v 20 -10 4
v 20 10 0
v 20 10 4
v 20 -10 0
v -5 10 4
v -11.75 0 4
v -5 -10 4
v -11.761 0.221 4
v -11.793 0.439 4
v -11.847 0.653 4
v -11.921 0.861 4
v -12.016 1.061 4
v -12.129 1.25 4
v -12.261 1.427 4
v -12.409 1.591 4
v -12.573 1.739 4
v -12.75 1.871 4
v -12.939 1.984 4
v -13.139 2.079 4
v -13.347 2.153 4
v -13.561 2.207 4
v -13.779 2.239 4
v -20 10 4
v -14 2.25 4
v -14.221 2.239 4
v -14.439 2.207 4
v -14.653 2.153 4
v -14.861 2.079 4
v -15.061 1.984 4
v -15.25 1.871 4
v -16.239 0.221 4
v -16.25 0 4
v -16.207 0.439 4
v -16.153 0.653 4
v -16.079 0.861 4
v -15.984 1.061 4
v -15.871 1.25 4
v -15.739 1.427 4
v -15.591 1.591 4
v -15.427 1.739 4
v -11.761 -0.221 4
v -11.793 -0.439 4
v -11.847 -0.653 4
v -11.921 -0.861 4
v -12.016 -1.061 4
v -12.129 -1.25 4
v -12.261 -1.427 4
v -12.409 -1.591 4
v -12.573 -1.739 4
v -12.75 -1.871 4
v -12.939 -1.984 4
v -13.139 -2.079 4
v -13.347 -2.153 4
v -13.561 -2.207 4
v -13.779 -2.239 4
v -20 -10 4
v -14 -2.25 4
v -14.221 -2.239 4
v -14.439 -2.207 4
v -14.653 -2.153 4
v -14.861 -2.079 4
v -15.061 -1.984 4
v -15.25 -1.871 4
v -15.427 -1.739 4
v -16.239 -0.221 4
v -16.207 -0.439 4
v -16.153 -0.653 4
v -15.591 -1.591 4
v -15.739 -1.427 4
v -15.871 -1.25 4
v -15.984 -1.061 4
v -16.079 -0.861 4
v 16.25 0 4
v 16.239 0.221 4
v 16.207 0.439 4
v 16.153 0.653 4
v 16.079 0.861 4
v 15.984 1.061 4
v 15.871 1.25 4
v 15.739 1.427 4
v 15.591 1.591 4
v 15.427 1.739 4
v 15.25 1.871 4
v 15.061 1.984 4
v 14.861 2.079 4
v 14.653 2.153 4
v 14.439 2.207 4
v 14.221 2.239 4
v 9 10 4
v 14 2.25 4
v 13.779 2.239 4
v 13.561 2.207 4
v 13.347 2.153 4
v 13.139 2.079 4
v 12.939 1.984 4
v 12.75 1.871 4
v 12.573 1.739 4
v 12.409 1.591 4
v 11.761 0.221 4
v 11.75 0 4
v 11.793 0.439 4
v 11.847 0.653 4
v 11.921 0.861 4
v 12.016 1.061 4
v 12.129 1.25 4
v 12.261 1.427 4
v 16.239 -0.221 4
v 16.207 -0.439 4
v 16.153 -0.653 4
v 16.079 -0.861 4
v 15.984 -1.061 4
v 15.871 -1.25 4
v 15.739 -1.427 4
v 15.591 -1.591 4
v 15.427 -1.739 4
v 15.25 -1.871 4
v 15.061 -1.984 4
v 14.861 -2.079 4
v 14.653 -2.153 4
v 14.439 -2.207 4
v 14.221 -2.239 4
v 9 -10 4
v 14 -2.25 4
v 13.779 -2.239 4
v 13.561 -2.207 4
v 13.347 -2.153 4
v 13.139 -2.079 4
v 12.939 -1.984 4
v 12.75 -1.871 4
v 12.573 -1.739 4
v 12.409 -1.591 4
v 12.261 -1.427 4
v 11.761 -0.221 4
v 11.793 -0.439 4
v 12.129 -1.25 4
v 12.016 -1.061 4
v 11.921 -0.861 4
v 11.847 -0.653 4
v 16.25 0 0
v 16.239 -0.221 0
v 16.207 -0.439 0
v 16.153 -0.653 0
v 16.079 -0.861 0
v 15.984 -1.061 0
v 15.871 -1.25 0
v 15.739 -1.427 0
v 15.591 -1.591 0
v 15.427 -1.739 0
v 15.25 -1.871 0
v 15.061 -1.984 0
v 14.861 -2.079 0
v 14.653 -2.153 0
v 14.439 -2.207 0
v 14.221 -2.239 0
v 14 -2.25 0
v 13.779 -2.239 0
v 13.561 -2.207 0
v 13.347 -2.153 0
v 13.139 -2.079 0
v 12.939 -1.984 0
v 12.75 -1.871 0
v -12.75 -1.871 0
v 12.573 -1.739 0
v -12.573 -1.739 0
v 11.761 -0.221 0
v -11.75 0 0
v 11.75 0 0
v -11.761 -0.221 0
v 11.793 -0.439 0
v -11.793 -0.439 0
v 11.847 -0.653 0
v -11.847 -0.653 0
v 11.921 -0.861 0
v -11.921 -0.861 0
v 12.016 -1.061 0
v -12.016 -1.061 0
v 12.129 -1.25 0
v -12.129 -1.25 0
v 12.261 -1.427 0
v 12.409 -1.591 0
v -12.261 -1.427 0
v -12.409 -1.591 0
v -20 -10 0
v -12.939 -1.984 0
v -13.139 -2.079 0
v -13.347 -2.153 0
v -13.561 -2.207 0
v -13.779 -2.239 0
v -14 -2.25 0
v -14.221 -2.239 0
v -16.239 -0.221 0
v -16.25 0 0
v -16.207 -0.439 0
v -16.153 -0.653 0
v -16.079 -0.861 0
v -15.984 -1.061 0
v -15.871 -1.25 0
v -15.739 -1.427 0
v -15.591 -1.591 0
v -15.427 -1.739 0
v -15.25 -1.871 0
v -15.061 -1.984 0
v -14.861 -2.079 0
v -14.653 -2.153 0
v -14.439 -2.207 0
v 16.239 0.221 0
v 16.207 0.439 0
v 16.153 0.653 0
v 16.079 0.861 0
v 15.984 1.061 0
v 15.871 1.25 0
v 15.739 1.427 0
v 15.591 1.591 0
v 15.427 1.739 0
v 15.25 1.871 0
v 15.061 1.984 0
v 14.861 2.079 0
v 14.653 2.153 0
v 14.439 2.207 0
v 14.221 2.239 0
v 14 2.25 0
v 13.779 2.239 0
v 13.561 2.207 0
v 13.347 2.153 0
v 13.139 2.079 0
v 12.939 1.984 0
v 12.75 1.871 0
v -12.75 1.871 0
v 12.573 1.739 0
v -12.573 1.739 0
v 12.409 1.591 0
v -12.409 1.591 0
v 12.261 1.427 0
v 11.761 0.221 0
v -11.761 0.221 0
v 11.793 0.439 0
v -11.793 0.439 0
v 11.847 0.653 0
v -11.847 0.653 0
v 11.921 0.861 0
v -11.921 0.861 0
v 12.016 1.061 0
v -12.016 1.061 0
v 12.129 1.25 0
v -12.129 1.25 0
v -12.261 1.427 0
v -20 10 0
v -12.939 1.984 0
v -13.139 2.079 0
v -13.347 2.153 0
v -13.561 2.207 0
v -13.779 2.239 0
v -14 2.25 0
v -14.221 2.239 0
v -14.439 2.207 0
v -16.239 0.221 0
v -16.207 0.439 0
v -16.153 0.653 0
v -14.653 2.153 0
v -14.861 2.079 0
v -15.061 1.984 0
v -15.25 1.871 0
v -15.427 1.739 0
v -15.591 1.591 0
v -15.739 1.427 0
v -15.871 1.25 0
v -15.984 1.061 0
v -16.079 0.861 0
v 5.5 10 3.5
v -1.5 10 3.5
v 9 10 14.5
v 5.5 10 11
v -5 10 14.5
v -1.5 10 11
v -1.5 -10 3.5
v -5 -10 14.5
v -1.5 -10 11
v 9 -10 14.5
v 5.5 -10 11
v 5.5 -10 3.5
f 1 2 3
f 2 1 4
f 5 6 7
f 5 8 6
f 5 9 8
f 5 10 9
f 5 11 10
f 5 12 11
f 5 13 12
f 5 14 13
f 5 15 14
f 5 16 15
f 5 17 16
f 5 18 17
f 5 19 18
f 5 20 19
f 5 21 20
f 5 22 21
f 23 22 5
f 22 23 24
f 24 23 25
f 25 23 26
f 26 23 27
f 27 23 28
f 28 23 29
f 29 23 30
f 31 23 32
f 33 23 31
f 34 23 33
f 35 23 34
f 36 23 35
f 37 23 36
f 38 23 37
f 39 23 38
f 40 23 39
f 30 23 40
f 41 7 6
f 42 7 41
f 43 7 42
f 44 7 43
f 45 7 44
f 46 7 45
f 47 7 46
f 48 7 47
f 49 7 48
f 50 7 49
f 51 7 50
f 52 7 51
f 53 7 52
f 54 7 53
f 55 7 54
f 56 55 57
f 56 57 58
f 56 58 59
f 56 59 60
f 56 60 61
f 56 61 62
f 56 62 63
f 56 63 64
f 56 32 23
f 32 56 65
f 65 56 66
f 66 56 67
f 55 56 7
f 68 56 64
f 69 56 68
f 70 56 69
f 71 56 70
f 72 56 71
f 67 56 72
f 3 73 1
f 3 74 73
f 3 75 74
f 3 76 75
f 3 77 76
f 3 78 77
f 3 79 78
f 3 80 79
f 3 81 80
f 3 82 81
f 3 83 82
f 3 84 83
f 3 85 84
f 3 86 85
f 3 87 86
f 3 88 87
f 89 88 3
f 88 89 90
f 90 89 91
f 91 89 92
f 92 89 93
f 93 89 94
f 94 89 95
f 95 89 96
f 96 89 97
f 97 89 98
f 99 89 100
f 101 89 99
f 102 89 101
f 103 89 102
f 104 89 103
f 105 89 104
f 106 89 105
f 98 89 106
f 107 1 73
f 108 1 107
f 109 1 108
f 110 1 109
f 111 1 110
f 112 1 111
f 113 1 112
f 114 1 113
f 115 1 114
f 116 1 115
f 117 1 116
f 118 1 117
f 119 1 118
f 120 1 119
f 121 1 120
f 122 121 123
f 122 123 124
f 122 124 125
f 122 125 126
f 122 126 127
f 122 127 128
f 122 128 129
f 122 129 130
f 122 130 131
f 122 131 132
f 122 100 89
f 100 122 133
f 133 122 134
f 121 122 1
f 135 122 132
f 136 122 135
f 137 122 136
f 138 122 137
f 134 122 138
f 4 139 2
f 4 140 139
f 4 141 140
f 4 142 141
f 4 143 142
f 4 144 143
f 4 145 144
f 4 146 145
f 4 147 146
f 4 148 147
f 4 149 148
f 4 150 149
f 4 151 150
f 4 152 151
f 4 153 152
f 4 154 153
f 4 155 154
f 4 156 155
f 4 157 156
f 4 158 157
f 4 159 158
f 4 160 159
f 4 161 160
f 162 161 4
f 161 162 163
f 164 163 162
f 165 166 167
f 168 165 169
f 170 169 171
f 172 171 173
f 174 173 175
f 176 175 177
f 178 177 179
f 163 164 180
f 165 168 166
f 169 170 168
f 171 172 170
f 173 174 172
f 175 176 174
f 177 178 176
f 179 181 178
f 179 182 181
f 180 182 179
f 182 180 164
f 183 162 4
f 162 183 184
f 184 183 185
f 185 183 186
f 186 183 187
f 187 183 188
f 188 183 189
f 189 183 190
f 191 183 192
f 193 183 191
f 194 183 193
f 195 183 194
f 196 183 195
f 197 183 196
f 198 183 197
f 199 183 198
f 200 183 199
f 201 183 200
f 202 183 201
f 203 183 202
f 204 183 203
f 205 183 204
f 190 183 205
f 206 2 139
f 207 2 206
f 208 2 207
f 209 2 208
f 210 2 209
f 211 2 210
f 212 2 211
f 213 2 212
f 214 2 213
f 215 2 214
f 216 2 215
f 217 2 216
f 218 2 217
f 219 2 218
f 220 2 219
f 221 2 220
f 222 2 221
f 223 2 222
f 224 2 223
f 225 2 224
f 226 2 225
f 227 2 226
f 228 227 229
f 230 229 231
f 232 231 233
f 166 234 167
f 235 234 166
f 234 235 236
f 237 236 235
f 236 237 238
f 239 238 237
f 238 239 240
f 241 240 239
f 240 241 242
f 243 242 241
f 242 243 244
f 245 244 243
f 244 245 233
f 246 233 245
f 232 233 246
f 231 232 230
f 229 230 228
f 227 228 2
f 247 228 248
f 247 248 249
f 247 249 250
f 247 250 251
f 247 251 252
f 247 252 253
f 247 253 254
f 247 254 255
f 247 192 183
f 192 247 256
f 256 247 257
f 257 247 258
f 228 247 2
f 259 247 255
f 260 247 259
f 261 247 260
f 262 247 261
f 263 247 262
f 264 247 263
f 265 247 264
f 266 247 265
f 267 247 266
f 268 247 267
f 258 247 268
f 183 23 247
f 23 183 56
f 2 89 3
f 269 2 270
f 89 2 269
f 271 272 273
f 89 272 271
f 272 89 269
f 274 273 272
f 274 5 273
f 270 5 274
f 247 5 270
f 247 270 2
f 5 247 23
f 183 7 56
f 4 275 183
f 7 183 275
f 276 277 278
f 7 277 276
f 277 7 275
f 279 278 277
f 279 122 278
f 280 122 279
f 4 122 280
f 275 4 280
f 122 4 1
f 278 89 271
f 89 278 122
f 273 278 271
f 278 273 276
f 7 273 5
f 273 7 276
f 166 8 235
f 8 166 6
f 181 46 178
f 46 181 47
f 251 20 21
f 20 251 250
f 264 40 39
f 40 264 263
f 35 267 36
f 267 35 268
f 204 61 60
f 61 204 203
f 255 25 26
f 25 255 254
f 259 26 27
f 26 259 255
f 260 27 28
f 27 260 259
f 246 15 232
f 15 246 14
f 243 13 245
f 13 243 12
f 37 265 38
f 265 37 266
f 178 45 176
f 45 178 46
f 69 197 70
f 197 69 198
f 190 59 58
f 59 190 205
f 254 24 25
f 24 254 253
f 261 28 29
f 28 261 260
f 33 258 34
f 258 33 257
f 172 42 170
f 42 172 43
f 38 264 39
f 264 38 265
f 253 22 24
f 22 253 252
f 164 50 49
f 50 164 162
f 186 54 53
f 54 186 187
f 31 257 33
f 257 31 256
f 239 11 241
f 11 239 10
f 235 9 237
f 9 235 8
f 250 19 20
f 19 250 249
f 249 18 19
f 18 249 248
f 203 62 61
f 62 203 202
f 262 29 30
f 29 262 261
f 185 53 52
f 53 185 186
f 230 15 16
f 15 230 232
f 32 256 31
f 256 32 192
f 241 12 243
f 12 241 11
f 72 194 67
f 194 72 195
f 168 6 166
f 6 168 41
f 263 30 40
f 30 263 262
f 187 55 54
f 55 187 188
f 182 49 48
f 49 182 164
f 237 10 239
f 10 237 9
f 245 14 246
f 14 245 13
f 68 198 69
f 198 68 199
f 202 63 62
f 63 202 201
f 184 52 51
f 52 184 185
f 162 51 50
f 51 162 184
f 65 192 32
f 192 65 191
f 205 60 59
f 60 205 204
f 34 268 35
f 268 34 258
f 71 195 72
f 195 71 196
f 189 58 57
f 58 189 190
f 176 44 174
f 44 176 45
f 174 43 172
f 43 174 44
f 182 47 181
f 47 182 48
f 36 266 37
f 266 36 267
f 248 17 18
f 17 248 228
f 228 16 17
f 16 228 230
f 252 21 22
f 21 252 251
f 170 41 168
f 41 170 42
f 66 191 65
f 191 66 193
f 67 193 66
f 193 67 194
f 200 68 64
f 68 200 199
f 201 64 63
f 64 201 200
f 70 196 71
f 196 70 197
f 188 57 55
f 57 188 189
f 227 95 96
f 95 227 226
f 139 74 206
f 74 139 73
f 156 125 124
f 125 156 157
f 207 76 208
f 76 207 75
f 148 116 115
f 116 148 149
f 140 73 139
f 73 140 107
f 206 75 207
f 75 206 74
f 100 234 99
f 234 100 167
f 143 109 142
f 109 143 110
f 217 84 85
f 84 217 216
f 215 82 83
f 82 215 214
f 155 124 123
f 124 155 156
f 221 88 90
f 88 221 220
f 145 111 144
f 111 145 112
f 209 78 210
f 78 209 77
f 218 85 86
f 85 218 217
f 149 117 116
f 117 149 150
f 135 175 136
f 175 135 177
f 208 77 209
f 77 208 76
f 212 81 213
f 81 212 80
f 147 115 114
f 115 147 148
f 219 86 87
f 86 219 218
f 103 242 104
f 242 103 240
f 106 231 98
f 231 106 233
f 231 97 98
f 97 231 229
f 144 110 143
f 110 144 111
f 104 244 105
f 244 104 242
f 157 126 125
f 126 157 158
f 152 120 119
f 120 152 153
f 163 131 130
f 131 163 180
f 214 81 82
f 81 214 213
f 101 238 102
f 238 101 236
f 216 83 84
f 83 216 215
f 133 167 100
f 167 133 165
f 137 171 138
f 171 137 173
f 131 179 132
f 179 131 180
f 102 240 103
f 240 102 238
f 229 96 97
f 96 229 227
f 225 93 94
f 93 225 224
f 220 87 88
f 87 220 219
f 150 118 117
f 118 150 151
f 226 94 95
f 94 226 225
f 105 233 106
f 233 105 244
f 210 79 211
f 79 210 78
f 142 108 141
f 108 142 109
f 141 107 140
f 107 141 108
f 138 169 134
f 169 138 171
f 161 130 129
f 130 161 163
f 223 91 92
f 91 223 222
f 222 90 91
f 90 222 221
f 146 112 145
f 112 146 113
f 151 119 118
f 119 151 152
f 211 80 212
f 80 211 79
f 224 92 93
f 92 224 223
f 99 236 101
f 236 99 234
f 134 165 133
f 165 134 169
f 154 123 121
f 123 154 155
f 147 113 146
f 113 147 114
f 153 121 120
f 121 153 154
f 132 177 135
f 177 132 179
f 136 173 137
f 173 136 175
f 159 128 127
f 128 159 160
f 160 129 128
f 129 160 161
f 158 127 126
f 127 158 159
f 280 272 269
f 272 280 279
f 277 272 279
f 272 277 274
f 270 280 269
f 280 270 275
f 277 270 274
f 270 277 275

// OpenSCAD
// Freezer door latch clip - enclosed tunnel, PETG, mm
$fn=64;
Overall_length=40;
Overall_width=20;
Base_thickness=4;
Channel_width=7;
Channel_height=7;
Tunnel_wall=3.5;
Roof_thickness=3.5;
Mounting_hole_diameter=4.5;
Mounting_hole_spacing=28;
// Tunnel layout centered near x=2
Ch_x0=-1.5;
Ch_x1=5.5;
Ch_z0=4;
Ch_z1=11;
Blk_x0=-5;
Blk_x1=9;
Blk_z1=14.5;
difference(){
  union(){
    // base plate full footprint
    translate([-Overall_length/2, -Overall_width/2, 0])
      cube([Overall_length, Overall_width, Base_thickness]);
    // tunnel outer block (floor is base, walls + roof)
    translate([Blk_x0, -Overall_width/2, Base_thickness])
      cube([Blk_x1-Blk_x0, Overall_width, Blk_z1-Base_thickness]);
  }
  // rectangular striker channel through full width (Y axis)
  translate([Ch_x0, -Overall_width/2-1, Ch_z0-0.5])
    cube([Ch_x1-Ch_x0, Overall_width+2, (Ch_z1-Ch_z0)+0.5]);
  // two vertical M4 clearance holes, outside tunnel, reachable from above
  for(sx=[-1,1])
    translate([sx*Mounting_hole_spacing/2, 0, -0.5])
      cylinder(d=Mounting_hole_diameter, h=Base_thickness+2);
}
